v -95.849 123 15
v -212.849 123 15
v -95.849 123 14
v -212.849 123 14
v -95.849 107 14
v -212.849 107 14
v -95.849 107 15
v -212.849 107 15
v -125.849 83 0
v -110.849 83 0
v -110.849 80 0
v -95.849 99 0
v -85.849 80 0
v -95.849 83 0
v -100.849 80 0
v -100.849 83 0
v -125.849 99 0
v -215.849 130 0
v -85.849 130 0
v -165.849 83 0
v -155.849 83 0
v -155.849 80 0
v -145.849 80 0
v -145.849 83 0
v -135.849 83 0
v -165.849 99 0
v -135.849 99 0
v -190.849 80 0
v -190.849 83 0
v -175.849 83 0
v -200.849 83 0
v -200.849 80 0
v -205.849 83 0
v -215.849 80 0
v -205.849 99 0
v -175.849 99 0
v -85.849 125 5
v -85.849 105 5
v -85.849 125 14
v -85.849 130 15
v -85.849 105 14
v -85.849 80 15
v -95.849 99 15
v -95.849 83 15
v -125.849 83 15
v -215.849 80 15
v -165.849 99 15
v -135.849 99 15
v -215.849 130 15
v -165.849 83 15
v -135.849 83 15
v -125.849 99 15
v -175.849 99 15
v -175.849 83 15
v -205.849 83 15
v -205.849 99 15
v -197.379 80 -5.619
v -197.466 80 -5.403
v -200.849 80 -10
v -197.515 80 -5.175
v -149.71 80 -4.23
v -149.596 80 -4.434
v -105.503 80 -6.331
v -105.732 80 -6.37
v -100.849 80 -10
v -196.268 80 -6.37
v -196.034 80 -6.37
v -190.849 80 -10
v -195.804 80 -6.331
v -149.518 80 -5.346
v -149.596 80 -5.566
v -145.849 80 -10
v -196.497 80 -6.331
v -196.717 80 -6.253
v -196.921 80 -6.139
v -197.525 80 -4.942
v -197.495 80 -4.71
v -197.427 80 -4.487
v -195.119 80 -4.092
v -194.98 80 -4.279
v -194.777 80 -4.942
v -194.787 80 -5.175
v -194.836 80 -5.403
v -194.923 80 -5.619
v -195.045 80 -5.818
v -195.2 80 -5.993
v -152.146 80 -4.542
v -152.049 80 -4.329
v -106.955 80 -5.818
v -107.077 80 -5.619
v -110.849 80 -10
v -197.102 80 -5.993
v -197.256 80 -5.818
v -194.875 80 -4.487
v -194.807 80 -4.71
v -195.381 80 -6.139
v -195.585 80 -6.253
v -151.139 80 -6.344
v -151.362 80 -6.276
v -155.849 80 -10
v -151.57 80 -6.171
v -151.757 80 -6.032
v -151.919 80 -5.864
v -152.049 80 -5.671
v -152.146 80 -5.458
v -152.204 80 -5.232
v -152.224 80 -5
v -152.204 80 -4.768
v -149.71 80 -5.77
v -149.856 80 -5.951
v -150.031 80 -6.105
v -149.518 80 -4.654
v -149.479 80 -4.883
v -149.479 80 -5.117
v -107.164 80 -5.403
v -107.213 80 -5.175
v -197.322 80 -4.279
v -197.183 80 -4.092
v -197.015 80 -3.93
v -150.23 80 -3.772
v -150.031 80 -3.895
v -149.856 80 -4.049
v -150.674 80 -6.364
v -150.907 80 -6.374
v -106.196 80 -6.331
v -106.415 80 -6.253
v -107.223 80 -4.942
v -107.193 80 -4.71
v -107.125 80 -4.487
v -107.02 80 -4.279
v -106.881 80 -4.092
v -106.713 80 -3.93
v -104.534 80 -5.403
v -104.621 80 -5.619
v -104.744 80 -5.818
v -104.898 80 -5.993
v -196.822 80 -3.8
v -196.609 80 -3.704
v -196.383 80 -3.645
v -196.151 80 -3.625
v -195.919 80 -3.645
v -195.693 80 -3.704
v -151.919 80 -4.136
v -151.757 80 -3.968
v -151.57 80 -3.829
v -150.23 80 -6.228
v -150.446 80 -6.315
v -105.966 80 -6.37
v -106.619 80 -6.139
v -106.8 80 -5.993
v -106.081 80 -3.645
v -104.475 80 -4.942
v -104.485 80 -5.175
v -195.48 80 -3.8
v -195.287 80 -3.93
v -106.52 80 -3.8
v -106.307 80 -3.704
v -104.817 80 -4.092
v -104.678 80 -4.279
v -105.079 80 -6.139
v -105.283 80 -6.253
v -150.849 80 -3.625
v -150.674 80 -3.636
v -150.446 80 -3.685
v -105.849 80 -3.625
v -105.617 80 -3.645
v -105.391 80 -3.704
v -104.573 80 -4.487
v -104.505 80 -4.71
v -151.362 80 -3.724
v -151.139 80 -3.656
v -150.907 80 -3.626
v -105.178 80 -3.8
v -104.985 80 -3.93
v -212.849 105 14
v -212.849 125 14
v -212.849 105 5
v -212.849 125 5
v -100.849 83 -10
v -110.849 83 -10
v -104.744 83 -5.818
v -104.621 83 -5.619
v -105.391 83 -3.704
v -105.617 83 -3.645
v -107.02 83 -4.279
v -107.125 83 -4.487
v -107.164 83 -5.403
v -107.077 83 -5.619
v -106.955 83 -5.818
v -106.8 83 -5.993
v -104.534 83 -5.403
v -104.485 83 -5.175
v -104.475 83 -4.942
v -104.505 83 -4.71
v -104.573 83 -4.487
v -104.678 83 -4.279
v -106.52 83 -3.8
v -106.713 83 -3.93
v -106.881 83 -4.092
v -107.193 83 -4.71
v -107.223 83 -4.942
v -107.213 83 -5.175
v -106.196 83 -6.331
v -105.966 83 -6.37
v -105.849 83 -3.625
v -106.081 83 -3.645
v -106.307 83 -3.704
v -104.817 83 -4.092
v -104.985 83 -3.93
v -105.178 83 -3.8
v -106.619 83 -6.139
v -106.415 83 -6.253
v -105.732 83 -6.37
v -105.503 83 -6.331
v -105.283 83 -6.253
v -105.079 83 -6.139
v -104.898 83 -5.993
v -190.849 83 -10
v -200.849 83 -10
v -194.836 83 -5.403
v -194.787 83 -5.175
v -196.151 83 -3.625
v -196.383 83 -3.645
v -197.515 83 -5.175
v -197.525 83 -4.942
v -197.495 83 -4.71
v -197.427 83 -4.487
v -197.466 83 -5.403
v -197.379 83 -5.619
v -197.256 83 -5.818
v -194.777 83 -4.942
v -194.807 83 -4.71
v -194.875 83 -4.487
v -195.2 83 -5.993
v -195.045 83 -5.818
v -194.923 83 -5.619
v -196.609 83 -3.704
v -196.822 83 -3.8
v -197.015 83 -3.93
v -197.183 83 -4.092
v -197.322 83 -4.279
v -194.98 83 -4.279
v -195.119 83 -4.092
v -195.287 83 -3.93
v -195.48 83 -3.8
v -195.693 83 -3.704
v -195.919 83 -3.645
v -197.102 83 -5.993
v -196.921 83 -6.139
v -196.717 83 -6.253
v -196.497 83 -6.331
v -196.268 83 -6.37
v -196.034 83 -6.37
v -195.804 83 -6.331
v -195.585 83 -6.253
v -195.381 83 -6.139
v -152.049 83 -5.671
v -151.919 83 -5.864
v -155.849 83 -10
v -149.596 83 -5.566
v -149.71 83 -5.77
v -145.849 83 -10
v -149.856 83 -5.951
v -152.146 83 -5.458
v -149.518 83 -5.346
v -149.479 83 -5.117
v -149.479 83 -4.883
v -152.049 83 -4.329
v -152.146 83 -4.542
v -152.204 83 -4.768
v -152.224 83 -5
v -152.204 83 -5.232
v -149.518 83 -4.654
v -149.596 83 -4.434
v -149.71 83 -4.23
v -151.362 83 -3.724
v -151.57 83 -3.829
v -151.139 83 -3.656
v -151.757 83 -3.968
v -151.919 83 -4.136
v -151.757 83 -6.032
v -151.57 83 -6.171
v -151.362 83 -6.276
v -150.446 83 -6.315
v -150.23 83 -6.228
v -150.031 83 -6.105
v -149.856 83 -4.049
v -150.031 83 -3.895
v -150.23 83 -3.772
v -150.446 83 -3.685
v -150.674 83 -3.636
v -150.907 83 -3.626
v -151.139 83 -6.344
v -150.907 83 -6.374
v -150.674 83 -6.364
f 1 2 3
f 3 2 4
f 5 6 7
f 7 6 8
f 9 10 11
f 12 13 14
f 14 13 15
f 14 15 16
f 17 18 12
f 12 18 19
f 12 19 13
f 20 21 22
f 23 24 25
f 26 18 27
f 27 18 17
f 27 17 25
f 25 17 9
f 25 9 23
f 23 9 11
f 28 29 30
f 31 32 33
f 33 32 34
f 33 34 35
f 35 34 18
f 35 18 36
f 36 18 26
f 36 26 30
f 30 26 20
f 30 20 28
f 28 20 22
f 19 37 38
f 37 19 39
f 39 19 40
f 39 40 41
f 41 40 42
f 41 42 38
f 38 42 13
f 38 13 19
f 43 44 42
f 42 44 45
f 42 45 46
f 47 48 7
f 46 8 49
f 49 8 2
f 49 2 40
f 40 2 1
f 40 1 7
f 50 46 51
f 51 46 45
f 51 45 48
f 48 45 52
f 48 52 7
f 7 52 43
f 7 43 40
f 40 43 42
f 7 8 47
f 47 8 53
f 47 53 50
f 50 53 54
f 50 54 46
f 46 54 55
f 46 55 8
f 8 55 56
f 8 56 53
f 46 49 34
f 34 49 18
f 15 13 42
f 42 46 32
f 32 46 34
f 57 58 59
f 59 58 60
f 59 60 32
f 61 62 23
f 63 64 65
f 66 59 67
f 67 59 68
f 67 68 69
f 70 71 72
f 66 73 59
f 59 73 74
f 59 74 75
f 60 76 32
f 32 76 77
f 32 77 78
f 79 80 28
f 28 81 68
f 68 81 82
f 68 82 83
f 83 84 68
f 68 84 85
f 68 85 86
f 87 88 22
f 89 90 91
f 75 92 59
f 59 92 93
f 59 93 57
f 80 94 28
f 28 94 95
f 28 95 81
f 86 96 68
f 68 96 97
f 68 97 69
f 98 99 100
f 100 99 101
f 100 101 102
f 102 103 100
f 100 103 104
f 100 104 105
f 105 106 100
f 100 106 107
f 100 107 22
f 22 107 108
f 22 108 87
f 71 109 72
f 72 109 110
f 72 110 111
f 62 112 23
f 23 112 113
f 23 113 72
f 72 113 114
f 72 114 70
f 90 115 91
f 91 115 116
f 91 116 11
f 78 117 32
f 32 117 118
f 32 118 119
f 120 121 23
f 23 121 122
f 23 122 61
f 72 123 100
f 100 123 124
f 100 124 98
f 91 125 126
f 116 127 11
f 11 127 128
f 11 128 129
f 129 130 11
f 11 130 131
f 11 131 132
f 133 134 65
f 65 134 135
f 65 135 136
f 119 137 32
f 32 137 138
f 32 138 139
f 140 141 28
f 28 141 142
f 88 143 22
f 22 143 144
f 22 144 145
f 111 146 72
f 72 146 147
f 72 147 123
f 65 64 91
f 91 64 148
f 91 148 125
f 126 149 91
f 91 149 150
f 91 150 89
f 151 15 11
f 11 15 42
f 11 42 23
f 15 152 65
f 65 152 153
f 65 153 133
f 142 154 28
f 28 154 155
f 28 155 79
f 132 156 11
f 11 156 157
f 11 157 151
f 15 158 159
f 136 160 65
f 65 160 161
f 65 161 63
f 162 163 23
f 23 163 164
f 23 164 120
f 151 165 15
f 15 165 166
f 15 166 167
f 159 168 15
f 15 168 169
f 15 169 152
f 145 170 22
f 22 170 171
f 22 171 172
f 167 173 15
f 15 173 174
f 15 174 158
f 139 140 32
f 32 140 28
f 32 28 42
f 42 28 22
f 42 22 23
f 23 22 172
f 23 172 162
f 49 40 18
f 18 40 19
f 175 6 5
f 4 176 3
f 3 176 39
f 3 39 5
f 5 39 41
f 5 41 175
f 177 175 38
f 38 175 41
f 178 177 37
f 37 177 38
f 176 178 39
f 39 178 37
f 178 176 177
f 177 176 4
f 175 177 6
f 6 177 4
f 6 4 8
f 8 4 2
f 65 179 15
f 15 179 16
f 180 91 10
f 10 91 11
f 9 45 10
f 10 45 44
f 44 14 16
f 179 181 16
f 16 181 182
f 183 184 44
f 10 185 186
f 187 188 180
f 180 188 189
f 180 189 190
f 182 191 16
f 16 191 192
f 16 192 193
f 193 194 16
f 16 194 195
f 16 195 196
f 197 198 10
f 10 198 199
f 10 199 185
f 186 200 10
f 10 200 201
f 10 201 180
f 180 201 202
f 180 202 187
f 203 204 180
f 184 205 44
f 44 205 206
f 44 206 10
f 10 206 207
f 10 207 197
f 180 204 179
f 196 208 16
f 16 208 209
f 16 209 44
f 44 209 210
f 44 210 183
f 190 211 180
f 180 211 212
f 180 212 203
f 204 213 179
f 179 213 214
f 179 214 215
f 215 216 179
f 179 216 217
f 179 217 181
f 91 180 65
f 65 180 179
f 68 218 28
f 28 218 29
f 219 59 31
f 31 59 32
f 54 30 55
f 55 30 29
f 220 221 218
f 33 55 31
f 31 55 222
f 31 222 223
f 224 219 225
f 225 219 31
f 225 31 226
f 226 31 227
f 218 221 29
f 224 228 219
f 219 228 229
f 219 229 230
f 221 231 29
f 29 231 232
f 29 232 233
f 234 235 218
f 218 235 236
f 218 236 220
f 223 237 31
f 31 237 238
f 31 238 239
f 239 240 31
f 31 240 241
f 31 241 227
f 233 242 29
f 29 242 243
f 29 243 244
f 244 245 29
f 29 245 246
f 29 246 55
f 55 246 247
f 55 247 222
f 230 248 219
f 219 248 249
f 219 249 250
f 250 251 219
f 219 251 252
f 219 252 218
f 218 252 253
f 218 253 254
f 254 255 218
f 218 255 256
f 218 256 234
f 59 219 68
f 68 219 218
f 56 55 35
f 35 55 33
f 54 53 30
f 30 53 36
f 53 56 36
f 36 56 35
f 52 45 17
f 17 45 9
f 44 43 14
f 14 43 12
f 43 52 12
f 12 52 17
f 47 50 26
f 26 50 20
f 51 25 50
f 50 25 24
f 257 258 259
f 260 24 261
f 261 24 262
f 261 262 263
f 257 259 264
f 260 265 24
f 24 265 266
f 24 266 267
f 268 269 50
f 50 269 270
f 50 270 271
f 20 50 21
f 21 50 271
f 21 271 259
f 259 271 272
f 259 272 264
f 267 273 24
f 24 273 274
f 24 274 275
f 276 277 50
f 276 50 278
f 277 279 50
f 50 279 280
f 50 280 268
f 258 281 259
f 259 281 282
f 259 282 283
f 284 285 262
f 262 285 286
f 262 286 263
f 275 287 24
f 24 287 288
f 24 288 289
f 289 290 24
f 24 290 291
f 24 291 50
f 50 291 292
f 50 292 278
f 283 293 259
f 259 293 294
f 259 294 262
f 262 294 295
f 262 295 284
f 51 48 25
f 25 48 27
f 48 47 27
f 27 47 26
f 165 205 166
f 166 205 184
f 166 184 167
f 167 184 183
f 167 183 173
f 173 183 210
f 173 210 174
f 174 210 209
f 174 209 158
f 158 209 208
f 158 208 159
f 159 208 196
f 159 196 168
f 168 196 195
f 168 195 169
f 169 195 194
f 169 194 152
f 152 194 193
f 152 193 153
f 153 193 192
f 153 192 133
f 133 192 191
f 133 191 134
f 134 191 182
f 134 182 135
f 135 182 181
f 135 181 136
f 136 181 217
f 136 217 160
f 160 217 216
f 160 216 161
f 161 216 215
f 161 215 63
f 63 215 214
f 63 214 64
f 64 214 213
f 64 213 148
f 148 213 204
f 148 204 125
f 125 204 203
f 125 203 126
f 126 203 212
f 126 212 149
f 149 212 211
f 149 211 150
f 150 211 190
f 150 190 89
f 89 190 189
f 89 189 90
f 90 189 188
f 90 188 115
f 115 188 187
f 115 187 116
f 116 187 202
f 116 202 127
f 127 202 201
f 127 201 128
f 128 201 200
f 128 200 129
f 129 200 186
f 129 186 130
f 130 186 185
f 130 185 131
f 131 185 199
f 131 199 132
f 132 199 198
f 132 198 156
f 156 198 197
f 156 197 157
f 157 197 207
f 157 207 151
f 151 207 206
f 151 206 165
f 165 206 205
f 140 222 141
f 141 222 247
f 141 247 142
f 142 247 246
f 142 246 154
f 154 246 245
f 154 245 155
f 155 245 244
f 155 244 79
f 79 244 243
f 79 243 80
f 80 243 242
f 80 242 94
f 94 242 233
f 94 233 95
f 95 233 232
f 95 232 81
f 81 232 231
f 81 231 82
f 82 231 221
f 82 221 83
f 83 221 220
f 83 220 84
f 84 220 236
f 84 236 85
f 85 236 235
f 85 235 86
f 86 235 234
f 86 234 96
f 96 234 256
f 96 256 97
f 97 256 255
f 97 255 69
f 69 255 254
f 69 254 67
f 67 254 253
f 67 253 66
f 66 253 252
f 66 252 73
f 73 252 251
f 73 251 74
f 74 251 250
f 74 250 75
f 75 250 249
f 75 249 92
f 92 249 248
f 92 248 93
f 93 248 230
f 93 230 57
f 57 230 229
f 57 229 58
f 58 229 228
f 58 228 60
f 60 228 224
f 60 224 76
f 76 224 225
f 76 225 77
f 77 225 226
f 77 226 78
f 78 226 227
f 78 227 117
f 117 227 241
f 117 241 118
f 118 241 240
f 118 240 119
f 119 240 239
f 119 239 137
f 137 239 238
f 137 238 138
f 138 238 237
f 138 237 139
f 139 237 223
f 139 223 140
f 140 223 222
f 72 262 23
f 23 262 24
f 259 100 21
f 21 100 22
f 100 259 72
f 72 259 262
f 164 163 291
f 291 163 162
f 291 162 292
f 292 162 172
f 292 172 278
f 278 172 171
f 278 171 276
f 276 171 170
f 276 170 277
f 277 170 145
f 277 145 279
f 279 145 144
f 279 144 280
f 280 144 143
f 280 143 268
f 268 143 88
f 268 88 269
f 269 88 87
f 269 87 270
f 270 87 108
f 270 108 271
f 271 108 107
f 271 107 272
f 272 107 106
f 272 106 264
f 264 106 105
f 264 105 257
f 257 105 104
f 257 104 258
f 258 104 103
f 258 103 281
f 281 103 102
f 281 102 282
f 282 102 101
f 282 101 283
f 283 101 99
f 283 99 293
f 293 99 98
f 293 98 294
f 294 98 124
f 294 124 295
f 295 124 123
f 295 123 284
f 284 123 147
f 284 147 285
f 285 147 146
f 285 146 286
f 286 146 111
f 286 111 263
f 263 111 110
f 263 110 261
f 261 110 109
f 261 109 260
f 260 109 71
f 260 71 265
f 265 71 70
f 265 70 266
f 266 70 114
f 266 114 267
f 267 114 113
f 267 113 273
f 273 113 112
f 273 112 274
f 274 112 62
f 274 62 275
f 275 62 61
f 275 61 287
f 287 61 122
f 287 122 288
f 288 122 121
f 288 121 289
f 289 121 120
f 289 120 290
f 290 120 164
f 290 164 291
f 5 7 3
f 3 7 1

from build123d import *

# Parameters (mm, degrees)
SKETCH1_W               = 130
SKETCH1_H               = 50
BOSS_EXTRUDE1_DEPTH     = 15
CUT_EXTRUDE1_DEPTH      = 185.458667457
CUT_EXTRUDE1_DEPTH_BACK = 127
SKETCH4_W               = 10
SKETCH4_H               = 3
BOSS_EXTRUDE2_DEPTH     = 10
SKETCH6_W               = 30
SKETCH6_H               = 16
CUT_EXTRUDE2_DEPTH      = 253.419918463
SKETCH7_R               = 1.375
CUT_EXTRUDE3_DEPTH      = 222.415481023
SKETCH9_W               = 10
SKETCH9_H               = 3
BOSS_EXTRUDE4_DEPTH     = 10
SKETCH10_R              = 1.375
CUT_EXTRUDE4_DEPTH      = 10
SKETCH11_W              = 10
SKETCH11_H              = 1
BOSS_EXTRUDE5_DEPTH     = 20


with BuildPart() as part:
    # Sketch1 → Boss-Extrude1 (new body)
    with BuildSketch(Plane.XY):
        with Locations((-150.849056604, 105)):
            Rectangle(SKETCH1_W, SKETCH1_H)
    extrude(amount=BOSS_EXTRUDE1_DEPTH)

    # Sketch3 → Cut-Extrude1 (cut, two sides: drawn at the far end of the back side and taken through both)
    with BuildSketch(Plane(origin=(-85.849056604, 0, 0), x_dir=(0, 0, -1), z_dir=(1, 0, 0)).offset(-CUT_EXTRUDE1_DEPTH_BACK)):
        Polygon((-14, 125), (-5, 125), (-5, 105), (-14, 105), (-14, 107), (-15, 107), (-15, 123), (-14, 123), align=None)
    extrude(amount=CUT_EXTRUDE1_DEPTH + CUT_EXTRUDE1_DEPTH_BACK, mode=Mode.SUBTRACT)

    # Sketch4 → Boss-Extrude2 (add)
    with BuildSketch(Plane(origin=(0, 0, 0), x_dir=(-1, 0, 0), z_dir=(0, 0, -1))):
        with Locations((105.849056604, 81.5)):
            Rectangle(SKETCH4_W, SKETCH4_H)
        with Locations((195.849056604, 81.5)):
            Rectangle(SKETCH4_W, SKETCH4_H)
    extrude(amount=BOSS_EXTRUDE2_DEPTH)

    # Sketch6 → Cut-Extrude2 (cut, through all)
    with BuildSketch(Plane(origin=(0, 0, 0), x_dir=(-1, 0, 0), z_dir=(0, 0, -1))):
        with Locations((190.849056604, 91)):
            Rectangle(SKETCH6_W, SKETCH6_H)
        with Locations((150.849056604, 91)):
            Rectangle(SKETCH6_W, SKETCH6_H)
        with Locations((110.849056604, 91)):
            Rectangle(SKETCH6_W, SKETCH6_H)
    extrude(amount=-CUT_EXTRUDE2_DEPTH, mode=Mode.SUBTRACT)

    # Sketch7 → Cut-Extrude3 (cut, through all)
    with BuildSketch(Plane(origin=(0, 83, 0), x_dir=(1, 0, 0), z_dir=(0, 1, 0))):
        with Locations(Location((-105.849056604, 5, 0), (0, 0, 270))):
            Circle(SKETCH7_R)
    cut_extrude3 = extrude(amount=-CUT_EXTRUDE3_DEPTH, mode=Mode.SUBTRACT)

    # Mirror1: Cut-Extrude3 across plane
    add(cut_extrude3.mirror(Plane(origin=(-151, 0, 0), x_dir=(0, 0, 1), z_dir=(1, 0, 0))), mode=Mode.SUBTRACT)

    # Sketch9 → Boss-Extrude4 (add)
    with BuildSketch(Plane(origin=(0, 0, 0), x_dir=(-1, 0, 0), z_dir=(0, 0, -1))):
        with Locations((150.849056604, 81.5)):
            Rectangle(SKETCH9_W, SKETCH9_H)
    extrude(amount=BOSS_EXTRUDE4_DEPTH)

    # Sketch10 → Cut-Extrude4 (cut)
    with BuildSketch(Plane(origin=(0, 83, 0), x_dir=(1, 0, 0), z_dir=(0, 1, 0))):
        with Locations(Location((-150.849056604, 5, 0), (0, 0, 180))):
            Circle(SKETCH10_R)
    extrude(amount=-CUT_EXTRUDE4_DEPTH, mode=Mode.SUBTRACT)

    # Sketch11 → Boss-Extrude5 (add)
    with BuildSketch(Plane(origin=(0, 107, 0), x_dir=(1, 0, 0), z_dir=(0, 1, 0))):
        with Locations((-90.849056604, -14.5)):
            Rectangle(SKETCH11_W, SKETCH11_H)
    extrude(amount=BOSS_EXTRUDE5_DEPTH)


solid = part.part
